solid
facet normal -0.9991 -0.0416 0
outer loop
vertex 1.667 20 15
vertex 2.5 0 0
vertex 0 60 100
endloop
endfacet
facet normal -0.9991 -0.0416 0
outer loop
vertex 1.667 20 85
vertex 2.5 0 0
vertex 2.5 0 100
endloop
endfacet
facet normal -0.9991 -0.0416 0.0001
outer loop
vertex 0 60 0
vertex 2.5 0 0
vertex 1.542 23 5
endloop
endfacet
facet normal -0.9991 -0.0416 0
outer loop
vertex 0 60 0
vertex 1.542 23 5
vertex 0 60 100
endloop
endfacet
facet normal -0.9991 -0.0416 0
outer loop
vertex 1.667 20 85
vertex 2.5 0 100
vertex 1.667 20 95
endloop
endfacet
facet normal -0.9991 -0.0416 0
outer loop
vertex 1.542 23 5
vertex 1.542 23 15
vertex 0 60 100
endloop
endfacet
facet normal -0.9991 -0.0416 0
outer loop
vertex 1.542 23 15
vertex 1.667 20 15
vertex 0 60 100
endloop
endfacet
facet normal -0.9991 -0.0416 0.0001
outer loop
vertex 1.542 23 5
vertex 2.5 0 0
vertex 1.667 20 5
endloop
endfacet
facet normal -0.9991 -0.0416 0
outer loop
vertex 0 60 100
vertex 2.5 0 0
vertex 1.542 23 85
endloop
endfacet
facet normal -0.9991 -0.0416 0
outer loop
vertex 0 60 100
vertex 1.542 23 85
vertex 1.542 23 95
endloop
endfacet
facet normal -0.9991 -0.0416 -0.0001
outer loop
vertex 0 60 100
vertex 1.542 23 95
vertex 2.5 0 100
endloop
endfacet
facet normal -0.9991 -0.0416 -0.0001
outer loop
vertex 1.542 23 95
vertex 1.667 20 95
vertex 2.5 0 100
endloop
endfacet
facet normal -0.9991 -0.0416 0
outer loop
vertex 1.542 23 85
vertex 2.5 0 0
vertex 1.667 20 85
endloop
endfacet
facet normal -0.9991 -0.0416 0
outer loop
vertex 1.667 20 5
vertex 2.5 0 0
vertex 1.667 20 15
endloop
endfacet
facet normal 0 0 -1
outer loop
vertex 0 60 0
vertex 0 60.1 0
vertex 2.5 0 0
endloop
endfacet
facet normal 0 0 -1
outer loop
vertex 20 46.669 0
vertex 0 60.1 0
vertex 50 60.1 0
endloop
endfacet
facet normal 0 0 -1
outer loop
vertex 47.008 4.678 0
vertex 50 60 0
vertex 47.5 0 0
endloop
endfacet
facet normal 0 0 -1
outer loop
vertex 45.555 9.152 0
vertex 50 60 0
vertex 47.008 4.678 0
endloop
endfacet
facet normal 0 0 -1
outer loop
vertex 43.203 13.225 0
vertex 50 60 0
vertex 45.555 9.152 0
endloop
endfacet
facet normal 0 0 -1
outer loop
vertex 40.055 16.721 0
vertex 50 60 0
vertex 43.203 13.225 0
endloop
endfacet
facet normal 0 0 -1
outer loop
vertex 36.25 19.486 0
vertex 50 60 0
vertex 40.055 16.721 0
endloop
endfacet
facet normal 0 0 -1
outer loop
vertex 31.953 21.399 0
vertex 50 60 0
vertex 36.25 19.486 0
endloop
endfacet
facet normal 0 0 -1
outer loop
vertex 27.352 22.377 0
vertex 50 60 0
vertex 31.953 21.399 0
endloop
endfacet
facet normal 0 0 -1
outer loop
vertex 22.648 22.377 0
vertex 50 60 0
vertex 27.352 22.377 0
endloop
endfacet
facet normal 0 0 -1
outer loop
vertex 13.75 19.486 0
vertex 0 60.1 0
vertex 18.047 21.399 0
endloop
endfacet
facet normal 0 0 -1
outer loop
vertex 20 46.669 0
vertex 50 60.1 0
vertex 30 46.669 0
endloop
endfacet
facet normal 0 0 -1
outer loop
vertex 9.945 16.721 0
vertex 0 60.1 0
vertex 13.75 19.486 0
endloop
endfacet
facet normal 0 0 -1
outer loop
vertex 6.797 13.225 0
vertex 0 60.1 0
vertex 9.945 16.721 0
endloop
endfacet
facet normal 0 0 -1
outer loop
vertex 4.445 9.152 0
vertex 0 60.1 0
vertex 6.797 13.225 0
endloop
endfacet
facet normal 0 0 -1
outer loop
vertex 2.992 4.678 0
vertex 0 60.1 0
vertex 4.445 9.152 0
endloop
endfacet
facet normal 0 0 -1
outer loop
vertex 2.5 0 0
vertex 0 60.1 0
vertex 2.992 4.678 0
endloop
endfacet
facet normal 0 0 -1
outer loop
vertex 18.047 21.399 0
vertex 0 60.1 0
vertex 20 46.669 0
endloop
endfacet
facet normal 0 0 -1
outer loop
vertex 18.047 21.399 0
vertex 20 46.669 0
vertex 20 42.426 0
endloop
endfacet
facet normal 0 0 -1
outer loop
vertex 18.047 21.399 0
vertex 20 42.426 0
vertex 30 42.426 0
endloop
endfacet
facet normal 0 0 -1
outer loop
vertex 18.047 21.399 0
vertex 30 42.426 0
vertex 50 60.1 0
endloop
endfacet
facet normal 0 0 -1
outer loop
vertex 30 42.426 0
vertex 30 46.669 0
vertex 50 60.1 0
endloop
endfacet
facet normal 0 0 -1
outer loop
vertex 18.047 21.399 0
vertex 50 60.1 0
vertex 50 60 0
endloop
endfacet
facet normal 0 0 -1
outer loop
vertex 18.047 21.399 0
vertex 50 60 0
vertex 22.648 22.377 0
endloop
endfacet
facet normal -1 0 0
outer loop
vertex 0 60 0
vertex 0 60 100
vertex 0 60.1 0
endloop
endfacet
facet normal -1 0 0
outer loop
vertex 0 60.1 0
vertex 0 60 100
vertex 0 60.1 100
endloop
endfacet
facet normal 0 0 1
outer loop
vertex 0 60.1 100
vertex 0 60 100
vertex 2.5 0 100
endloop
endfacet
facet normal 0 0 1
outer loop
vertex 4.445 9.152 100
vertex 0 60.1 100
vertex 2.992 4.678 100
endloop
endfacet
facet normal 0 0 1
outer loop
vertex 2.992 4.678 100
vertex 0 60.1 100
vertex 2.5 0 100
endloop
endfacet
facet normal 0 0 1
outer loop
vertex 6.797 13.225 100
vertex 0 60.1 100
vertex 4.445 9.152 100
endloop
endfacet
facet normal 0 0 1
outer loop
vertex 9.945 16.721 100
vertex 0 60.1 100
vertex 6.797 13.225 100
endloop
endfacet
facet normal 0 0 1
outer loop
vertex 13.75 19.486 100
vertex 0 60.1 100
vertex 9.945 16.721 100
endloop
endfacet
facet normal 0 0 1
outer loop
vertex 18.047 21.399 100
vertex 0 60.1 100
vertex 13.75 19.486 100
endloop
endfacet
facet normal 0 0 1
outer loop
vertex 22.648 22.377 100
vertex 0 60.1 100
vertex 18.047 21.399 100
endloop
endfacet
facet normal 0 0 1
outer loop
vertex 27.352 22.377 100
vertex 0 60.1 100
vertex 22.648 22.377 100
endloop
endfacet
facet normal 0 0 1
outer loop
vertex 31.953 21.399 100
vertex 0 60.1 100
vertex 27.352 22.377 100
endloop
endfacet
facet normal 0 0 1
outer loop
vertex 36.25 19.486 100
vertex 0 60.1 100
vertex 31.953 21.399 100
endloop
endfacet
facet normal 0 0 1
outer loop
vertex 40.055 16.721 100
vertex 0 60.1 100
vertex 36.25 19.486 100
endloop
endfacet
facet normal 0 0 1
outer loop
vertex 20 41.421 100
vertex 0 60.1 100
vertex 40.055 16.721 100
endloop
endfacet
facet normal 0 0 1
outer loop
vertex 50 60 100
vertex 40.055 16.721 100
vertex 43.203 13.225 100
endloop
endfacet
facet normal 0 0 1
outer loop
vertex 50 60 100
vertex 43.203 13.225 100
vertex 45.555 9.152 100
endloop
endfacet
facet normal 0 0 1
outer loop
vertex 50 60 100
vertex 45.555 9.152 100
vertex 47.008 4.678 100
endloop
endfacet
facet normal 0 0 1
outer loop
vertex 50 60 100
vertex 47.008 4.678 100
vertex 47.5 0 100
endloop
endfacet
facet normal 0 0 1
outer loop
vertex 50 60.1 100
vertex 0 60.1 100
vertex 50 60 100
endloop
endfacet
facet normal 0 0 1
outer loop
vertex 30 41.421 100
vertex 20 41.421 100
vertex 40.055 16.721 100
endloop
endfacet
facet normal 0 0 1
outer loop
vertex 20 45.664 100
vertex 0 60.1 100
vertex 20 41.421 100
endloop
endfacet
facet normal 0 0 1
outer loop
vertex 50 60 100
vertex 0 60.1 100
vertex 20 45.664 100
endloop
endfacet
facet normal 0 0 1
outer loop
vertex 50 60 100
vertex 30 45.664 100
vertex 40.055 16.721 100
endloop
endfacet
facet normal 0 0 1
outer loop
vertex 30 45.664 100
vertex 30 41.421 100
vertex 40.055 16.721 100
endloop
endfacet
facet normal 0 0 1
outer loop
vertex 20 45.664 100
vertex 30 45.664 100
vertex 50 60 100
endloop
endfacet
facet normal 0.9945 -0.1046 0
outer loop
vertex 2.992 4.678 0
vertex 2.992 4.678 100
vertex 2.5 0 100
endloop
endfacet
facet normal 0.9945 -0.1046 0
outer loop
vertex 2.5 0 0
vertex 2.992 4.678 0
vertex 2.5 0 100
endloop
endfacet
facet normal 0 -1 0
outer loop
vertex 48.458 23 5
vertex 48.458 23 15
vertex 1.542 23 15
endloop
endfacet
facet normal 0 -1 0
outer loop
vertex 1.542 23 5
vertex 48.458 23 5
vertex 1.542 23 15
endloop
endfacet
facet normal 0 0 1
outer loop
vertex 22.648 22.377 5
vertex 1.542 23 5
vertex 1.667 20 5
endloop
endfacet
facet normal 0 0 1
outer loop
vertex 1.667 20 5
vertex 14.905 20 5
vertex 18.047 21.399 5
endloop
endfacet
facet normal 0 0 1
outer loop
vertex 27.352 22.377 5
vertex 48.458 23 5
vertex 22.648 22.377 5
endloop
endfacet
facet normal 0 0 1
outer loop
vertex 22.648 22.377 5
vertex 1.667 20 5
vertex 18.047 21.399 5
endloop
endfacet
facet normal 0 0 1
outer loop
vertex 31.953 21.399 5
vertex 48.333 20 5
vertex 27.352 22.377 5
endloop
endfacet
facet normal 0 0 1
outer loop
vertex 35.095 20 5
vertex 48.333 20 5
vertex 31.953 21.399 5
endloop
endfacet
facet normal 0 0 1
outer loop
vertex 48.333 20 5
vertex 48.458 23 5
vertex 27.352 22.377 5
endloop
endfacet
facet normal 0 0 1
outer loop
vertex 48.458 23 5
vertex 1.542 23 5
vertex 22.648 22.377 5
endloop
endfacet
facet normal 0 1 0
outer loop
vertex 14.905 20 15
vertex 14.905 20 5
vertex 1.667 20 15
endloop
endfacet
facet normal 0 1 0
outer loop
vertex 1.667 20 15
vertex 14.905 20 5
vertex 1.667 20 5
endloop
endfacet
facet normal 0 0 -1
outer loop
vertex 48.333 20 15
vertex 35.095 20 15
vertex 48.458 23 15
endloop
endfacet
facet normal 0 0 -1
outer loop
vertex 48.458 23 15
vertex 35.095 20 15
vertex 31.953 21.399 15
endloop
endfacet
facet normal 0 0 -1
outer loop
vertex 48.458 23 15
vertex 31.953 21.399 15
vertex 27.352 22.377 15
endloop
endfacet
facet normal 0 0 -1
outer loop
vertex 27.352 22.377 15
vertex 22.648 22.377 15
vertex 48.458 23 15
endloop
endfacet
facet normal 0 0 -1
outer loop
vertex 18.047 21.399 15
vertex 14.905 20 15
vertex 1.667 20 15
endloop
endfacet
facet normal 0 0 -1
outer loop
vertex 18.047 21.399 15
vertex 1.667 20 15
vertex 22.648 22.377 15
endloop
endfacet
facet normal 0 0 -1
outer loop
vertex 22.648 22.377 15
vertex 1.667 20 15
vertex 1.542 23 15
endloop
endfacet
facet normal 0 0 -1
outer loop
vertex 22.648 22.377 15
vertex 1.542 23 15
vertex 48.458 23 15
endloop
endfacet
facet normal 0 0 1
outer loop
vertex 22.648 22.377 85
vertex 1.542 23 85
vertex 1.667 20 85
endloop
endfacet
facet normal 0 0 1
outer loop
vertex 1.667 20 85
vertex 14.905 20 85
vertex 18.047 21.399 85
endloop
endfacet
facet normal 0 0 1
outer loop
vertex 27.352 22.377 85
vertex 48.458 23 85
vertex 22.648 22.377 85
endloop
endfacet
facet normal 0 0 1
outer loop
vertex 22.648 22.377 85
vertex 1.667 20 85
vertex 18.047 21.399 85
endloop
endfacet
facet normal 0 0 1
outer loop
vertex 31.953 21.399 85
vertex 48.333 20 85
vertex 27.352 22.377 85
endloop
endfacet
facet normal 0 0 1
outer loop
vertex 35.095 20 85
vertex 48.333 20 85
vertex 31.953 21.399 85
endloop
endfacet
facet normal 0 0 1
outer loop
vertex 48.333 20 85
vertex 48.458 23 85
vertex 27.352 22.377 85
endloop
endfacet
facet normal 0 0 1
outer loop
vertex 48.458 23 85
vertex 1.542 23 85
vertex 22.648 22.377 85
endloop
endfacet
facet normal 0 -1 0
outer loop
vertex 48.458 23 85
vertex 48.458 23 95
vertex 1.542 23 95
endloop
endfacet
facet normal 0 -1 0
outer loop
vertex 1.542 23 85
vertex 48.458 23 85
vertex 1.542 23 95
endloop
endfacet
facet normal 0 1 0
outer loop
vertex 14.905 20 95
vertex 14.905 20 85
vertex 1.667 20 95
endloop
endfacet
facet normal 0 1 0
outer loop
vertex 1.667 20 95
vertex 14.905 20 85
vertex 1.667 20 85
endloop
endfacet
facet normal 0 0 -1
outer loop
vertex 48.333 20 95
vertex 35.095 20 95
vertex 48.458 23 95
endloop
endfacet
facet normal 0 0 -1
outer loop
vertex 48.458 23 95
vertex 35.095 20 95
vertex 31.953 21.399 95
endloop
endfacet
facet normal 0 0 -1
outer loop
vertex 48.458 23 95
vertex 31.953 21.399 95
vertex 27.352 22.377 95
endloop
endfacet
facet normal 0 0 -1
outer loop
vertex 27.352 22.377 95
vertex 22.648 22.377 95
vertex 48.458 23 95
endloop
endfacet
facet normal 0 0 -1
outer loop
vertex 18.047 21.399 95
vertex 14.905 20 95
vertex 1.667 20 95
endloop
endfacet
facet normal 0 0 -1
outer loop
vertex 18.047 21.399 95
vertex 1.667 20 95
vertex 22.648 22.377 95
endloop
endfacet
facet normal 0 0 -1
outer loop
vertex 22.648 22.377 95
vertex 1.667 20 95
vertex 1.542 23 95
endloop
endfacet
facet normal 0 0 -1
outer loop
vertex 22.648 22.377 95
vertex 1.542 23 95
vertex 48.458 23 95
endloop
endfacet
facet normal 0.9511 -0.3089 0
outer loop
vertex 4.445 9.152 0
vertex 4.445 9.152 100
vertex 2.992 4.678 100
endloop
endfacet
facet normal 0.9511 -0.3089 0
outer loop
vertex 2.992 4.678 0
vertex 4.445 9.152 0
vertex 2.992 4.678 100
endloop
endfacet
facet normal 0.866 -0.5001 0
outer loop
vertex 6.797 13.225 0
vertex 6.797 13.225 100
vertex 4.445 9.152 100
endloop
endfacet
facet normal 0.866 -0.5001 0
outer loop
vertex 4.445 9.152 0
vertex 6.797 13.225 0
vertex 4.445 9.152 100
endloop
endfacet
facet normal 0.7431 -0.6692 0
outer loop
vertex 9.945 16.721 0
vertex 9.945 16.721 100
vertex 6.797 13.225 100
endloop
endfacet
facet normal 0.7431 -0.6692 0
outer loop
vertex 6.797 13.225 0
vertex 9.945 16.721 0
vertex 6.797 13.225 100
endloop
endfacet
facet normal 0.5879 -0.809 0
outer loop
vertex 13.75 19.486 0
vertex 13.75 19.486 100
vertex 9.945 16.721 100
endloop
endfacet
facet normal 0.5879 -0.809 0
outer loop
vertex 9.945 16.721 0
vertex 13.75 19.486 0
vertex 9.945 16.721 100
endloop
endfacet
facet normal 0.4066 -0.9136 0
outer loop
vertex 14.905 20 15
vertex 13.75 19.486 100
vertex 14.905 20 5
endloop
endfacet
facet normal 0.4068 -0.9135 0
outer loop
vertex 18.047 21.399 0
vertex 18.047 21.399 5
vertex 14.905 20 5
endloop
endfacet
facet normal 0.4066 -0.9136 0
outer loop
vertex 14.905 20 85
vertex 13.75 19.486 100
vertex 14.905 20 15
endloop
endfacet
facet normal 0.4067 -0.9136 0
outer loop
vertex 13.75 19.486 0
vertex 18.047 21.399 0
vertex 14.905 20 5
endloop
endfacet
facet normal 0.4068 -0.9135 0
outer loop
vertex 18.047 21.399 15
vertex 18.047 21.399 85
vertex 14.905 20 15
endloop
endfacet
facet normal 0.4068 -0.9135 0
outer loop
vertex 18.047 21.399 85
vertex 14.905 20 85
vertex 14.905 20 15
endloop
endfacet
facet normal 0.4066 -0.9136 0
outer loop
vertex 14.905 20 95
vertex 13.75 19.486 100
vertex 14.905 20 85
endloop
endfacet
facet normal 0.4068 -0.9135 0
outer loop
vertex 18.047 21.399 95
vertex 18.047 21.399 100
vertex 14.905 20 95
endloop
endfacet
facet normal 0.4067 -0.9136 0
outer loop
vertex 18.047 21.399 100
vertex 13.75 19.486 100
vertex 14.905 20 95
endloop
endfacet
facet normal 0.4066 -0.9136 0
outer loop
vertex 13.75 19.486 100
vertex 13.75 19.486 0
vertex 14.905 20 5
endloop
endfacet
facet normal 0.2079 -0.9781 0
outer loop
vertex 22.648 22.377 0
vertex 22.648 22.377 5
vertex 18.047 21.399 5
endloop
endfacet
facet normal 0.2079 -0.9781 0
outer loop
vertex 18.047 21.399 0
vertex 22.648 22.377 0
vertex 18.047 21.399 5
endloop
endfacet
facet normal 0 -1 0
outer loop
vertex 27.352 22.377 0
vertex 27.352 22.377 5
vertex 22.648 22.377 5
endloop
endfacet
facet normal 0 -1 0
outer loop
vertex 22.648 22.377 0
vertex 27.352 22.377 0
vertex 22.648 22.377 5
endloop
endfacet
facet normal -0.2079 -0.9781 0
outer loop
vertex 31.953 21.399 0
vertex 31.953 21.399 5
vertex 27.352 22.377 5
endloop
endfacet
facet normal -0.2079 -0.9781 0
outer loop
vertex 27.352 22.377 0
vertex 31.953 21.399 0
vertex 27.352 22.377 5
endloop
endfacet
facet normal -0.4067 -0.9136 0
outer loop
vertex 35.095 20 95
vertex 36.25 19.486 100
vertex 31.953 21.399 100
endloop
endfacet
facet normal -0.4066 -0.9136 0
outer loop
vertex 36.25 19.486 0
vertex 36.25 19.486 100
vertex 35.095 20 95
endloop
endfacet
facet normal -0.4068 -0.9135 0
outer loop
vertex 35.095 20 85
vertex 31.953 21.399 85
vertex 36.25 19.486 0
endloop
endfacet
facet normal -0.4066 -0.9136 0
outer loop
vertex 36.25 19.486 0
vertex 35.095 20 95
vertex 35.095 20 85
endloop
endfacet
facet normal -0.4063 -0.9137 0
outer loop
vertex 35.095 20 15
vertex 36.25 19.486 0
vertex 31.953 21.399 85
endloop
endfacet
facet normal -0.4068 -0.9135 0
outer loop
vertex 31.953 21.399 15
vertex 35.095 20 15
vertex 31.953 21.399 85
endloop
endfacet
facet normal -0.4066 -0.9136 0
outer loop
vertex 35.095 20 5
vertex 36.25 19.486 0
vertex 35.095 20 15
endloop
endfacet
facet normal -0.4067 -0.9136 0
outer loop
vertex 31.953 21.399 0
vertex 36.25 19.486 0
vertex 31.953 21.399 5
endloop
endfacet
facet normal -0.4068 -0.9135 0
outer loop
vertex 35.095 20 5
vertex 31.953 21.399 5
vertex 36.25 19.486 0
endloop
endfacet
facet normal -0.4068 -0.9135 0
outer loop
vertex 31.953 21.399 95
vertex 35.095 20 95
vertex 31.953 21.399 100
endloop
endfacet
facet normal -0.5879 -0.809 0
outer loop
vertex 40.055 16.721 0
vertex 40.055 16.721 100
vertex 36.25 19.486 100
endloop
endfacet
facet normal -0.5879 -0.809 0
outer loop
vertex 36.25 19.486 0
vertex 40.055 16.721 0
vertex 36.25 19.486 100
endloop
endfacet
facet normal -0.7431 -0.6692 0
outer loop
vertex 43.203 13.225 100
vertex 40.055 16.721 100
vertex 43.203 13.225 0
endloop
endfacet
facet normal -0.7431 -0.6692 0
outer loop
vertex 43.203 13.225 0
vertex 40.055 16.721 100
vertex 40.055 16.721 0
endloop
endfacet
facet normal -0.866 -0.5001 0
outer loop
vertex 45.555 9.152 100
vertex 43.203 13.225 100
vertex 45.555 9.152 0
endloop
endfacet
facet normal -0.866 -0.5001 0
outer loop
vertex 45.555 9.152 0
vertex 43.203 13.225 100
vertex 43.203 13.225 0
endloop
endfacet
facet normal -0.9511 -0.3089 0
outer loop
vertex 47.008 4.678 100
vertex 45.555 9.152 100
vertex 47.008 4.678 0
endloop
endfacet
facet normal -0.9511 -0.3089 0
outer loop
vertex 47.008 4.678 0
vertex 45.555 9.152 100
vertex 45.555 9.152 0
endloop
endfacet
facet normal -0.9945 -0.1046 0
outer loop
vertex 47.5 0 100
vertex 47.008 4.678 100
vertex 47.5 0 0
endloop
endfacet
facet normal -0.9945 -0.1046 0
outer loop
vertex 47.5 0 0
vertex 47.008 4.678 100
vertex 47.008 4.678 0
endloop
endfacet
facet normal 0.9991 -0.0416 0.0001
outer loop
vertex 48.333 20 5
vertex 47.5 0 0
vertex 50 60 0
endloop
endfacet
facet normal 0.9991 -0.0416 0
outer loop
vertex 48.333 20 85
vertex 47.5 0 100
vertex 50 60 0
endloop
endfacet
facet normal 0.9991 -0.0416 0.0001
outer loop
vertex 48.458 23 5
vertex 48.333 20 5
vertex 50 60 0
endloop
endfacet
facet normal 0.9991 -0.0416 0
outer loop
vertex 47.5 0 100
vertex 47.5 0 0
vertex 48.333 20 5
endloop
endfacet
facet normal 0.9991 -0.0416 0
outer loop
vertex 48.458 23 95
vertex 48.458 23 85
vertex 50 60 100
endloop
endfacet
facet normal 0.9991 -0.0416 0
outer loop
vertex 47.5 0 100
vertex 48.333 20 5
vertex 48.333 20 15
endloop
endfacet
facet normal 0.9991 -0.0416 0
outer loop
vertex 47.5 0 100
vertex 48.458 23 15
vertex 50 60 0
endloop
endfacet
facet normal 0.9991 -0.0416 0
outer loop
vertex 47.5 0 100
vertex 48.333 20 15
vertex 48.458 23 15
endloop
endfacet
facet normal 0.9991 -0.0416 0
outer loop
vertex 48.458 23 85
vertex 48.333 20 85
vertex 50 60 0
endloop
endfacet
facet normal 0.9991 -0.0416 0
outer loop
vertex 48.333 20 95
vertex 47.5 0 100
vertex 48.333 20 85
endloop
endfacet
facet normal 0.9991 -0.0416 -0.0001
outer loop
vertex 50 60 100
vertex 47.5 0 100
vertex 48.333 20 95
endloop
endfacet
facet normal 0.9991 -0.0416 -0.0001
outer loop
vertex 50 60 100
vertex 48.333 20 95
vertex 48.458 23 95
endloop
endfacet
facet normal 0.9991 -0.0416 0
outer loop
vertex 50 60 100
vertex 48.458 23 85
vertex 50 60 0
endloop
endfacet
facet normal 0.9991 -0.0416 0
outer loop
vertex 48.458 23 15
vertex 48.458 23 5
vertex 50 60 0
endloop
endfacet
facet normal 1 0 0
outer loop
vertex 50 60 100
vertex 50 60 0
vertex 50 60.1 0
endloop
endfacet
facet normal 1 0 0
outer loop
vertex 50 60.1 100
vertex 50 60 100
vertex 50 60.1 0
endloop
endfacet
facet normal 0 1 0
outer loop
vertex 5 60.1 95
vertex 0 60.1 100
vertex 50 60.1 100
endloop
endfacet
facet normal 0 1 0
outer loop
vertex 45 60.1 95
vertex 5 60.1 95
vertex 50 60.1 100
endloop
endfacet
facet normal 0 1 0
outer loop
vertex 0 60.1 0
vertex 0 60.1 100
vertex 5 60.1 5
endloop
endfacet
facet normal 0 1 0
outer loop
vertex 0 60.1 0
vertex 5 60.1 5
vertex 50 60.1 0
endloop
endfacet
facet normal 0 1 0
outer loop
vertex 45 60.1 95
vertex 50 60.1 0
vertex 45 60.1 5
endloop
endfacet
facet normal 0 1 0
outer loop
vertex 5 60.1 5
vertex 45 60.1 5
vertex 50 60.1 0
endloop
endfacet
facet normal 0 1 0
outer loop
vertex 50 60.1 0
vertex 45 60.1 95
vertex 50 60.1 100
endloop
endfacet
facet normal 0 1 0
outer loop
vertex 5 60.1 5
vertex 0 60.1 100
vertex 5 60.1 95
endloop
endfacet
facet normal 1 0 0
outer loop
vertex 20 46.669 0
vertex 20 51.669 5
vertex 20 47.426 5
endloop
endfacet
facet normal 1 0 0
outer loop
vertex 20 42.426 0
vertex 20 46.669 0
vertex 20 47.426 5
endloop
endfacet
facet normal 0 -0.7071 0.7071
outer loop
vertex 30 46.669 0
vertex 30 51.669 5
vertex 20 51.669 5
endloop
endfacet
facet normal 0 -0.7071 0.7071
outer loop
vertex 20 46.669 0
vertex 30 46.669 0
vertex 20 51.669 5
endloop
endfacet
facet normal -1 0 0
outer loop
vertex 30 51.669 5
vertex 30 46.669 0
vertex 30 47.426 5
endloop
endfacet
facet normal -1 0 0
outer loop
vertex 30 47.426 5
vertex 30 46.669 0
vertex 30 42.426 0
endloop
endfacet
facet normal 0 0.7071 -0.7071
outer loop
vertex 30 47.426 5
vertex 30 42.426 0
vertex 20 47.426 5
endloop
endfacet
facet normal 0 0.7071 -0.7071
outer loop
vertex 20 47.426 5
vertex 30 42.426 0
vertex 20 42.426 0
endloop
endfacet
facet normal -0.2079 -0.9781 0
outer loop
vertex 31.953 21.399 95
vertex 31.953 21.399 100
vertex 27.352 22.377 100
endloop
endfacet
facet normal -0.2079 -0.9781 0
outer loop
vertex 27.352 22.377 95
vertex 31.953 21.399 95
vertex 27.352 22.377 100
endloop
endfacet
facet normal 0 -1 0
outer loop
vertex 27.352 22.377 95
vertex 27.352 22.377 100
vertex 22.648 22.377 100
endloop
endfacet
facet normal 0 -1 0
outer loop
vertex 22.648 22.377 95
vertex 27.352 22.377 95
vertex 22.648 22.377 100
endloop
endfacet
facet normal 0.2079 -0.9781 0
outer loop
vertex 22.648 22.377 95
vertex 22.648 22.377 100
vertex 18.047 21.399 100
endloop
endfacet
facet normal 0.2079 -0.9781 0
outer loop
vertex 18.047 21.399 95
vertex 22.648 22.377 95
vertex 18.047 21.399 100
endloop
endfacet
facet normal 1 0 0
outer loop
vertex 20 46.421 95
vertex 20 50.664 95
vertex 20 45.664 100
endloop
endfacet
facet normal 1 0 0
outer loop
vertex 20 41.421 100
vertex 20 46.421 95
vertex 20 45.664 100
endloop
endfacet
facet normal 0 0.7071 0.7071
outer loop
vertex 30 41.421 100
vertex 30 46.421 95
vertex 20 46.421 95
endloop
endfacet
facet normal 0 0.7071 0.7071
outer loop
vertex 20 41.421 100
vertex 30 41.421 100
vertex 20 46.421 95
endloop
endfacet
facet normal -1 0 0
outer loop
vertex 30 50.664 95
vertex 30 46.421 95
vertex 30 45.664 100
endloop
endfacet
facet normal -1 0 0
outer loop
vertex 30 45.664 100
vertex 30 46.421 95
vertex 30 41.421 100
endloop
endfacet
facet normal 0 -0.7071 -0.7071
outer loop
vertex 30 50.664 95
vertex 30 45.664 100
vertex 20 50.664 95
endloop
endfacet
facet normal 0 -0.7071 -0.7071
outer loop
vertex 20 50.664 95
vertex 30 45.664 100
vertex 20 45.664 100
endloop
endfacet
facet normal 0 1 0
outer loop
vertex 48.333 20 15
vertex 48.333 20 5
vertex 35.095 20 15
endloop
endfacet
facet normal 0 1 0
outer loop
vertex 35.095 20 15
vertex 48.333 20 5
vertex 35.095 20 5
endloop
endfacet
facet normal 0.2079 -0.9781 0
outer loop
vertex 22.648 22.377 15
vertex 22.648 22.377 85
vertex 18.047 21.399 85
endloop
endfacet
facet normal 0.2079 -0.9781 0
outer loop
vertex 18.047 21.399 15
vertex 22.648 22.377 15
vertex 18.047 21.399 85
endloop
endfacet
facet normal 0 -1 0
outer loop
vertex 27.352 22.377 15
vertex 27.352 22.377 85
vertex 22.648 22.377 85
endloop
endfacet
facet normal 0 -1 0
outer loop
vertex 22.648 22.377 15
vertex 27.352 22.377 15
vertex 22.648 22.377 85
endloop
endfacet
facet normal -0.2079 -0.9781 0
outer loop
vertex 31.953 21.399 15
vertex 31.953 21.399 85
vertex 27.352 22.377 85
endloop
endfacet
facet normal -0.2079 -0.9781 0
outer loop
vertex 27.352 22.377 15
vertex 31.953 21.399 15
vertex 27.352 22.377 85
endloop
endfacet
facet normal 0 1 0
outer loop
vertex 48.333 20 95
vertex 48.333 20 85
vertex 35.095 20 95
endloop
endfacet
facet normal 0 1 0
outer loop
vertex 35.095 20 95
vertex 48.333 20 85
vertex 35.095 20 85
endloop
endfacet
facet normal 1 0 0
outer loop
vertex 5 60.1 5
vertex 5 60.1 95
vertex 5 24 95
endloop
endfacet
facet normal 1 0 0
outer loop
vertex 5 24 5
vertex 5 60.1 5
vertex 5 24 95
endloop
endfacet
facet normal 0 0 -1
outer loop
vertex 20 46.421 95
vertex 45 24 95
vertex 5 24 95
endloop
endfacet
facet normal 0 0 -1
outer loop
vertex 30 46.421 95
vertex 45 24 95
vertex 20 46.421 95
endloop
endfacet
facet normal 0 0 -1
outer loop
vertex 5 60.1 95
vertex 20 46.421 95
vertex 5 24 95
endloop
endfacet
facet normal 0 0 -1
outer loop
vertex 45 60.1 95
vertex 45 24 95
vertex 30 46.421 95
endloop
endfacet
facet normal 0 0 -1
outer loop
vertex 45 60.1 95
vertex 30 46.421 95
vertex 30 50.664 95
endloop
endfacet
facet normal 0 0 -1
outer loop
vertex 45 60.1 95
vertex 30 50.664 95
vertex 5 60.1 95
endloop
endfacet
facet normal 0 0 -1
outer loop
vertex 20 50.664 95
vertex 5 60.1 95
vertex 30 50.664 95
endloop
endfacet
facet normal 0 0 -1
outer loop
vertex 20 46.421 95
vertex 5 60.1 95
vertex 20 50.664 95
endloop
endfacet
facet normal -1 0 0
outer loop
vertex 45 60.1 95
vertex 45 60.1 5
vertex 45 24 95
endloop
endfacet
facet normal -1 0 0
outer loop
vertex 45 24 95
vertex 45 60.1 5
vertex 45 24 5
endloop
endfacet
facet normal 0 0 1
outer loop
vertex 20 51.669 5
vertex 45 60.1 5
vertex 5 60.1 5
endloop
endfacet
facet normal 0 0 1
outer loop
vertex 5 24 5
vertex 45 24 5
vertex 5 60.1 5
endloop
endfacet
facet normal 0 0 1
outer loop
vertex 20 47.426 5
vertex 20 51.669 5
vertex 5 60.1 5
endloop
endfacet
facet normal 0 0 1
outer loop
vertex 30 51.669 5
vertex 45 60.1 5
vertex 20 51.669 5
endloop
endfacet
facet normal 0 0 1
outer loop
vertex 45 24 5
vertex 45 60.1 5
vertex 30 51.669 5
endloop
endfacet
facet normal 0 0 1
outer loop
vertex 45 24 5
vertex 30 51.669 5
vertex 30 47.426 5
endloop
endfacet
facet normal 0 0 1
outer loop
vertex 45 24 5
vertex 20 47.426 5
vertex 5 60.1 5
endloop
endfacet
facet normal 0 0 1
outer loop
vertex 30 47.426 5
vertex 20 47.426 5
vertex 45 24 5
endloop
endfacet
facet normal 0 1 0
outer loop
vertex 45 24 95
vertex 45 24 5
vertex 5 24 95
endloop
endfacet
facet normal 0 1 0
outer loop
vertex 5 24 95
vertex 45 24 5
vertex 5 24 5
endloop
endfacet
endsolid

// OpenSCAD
difference(){
hull(){
	translate([0,60,0])cube([50,0.1,100]);
	translate([5/2,0,0])cube([45,0.1,100]);
}

translate([45/2+5/2,0,-1])cylinder(r=45/2,h=102);
translate([10/2,24,10/2])cube([40,200,90]);
translate([-2,20,5])cube([100,3,10]);
translate([-2,20,100-10-5])cube([100,3,10]);

rotate([45,0,0])translate([25-10/2,50*2,20])cube([10,3,100]);
rotate([-45,0,0])translate([25-10/2,25+5,-20])cube([10,3,100]);
}
